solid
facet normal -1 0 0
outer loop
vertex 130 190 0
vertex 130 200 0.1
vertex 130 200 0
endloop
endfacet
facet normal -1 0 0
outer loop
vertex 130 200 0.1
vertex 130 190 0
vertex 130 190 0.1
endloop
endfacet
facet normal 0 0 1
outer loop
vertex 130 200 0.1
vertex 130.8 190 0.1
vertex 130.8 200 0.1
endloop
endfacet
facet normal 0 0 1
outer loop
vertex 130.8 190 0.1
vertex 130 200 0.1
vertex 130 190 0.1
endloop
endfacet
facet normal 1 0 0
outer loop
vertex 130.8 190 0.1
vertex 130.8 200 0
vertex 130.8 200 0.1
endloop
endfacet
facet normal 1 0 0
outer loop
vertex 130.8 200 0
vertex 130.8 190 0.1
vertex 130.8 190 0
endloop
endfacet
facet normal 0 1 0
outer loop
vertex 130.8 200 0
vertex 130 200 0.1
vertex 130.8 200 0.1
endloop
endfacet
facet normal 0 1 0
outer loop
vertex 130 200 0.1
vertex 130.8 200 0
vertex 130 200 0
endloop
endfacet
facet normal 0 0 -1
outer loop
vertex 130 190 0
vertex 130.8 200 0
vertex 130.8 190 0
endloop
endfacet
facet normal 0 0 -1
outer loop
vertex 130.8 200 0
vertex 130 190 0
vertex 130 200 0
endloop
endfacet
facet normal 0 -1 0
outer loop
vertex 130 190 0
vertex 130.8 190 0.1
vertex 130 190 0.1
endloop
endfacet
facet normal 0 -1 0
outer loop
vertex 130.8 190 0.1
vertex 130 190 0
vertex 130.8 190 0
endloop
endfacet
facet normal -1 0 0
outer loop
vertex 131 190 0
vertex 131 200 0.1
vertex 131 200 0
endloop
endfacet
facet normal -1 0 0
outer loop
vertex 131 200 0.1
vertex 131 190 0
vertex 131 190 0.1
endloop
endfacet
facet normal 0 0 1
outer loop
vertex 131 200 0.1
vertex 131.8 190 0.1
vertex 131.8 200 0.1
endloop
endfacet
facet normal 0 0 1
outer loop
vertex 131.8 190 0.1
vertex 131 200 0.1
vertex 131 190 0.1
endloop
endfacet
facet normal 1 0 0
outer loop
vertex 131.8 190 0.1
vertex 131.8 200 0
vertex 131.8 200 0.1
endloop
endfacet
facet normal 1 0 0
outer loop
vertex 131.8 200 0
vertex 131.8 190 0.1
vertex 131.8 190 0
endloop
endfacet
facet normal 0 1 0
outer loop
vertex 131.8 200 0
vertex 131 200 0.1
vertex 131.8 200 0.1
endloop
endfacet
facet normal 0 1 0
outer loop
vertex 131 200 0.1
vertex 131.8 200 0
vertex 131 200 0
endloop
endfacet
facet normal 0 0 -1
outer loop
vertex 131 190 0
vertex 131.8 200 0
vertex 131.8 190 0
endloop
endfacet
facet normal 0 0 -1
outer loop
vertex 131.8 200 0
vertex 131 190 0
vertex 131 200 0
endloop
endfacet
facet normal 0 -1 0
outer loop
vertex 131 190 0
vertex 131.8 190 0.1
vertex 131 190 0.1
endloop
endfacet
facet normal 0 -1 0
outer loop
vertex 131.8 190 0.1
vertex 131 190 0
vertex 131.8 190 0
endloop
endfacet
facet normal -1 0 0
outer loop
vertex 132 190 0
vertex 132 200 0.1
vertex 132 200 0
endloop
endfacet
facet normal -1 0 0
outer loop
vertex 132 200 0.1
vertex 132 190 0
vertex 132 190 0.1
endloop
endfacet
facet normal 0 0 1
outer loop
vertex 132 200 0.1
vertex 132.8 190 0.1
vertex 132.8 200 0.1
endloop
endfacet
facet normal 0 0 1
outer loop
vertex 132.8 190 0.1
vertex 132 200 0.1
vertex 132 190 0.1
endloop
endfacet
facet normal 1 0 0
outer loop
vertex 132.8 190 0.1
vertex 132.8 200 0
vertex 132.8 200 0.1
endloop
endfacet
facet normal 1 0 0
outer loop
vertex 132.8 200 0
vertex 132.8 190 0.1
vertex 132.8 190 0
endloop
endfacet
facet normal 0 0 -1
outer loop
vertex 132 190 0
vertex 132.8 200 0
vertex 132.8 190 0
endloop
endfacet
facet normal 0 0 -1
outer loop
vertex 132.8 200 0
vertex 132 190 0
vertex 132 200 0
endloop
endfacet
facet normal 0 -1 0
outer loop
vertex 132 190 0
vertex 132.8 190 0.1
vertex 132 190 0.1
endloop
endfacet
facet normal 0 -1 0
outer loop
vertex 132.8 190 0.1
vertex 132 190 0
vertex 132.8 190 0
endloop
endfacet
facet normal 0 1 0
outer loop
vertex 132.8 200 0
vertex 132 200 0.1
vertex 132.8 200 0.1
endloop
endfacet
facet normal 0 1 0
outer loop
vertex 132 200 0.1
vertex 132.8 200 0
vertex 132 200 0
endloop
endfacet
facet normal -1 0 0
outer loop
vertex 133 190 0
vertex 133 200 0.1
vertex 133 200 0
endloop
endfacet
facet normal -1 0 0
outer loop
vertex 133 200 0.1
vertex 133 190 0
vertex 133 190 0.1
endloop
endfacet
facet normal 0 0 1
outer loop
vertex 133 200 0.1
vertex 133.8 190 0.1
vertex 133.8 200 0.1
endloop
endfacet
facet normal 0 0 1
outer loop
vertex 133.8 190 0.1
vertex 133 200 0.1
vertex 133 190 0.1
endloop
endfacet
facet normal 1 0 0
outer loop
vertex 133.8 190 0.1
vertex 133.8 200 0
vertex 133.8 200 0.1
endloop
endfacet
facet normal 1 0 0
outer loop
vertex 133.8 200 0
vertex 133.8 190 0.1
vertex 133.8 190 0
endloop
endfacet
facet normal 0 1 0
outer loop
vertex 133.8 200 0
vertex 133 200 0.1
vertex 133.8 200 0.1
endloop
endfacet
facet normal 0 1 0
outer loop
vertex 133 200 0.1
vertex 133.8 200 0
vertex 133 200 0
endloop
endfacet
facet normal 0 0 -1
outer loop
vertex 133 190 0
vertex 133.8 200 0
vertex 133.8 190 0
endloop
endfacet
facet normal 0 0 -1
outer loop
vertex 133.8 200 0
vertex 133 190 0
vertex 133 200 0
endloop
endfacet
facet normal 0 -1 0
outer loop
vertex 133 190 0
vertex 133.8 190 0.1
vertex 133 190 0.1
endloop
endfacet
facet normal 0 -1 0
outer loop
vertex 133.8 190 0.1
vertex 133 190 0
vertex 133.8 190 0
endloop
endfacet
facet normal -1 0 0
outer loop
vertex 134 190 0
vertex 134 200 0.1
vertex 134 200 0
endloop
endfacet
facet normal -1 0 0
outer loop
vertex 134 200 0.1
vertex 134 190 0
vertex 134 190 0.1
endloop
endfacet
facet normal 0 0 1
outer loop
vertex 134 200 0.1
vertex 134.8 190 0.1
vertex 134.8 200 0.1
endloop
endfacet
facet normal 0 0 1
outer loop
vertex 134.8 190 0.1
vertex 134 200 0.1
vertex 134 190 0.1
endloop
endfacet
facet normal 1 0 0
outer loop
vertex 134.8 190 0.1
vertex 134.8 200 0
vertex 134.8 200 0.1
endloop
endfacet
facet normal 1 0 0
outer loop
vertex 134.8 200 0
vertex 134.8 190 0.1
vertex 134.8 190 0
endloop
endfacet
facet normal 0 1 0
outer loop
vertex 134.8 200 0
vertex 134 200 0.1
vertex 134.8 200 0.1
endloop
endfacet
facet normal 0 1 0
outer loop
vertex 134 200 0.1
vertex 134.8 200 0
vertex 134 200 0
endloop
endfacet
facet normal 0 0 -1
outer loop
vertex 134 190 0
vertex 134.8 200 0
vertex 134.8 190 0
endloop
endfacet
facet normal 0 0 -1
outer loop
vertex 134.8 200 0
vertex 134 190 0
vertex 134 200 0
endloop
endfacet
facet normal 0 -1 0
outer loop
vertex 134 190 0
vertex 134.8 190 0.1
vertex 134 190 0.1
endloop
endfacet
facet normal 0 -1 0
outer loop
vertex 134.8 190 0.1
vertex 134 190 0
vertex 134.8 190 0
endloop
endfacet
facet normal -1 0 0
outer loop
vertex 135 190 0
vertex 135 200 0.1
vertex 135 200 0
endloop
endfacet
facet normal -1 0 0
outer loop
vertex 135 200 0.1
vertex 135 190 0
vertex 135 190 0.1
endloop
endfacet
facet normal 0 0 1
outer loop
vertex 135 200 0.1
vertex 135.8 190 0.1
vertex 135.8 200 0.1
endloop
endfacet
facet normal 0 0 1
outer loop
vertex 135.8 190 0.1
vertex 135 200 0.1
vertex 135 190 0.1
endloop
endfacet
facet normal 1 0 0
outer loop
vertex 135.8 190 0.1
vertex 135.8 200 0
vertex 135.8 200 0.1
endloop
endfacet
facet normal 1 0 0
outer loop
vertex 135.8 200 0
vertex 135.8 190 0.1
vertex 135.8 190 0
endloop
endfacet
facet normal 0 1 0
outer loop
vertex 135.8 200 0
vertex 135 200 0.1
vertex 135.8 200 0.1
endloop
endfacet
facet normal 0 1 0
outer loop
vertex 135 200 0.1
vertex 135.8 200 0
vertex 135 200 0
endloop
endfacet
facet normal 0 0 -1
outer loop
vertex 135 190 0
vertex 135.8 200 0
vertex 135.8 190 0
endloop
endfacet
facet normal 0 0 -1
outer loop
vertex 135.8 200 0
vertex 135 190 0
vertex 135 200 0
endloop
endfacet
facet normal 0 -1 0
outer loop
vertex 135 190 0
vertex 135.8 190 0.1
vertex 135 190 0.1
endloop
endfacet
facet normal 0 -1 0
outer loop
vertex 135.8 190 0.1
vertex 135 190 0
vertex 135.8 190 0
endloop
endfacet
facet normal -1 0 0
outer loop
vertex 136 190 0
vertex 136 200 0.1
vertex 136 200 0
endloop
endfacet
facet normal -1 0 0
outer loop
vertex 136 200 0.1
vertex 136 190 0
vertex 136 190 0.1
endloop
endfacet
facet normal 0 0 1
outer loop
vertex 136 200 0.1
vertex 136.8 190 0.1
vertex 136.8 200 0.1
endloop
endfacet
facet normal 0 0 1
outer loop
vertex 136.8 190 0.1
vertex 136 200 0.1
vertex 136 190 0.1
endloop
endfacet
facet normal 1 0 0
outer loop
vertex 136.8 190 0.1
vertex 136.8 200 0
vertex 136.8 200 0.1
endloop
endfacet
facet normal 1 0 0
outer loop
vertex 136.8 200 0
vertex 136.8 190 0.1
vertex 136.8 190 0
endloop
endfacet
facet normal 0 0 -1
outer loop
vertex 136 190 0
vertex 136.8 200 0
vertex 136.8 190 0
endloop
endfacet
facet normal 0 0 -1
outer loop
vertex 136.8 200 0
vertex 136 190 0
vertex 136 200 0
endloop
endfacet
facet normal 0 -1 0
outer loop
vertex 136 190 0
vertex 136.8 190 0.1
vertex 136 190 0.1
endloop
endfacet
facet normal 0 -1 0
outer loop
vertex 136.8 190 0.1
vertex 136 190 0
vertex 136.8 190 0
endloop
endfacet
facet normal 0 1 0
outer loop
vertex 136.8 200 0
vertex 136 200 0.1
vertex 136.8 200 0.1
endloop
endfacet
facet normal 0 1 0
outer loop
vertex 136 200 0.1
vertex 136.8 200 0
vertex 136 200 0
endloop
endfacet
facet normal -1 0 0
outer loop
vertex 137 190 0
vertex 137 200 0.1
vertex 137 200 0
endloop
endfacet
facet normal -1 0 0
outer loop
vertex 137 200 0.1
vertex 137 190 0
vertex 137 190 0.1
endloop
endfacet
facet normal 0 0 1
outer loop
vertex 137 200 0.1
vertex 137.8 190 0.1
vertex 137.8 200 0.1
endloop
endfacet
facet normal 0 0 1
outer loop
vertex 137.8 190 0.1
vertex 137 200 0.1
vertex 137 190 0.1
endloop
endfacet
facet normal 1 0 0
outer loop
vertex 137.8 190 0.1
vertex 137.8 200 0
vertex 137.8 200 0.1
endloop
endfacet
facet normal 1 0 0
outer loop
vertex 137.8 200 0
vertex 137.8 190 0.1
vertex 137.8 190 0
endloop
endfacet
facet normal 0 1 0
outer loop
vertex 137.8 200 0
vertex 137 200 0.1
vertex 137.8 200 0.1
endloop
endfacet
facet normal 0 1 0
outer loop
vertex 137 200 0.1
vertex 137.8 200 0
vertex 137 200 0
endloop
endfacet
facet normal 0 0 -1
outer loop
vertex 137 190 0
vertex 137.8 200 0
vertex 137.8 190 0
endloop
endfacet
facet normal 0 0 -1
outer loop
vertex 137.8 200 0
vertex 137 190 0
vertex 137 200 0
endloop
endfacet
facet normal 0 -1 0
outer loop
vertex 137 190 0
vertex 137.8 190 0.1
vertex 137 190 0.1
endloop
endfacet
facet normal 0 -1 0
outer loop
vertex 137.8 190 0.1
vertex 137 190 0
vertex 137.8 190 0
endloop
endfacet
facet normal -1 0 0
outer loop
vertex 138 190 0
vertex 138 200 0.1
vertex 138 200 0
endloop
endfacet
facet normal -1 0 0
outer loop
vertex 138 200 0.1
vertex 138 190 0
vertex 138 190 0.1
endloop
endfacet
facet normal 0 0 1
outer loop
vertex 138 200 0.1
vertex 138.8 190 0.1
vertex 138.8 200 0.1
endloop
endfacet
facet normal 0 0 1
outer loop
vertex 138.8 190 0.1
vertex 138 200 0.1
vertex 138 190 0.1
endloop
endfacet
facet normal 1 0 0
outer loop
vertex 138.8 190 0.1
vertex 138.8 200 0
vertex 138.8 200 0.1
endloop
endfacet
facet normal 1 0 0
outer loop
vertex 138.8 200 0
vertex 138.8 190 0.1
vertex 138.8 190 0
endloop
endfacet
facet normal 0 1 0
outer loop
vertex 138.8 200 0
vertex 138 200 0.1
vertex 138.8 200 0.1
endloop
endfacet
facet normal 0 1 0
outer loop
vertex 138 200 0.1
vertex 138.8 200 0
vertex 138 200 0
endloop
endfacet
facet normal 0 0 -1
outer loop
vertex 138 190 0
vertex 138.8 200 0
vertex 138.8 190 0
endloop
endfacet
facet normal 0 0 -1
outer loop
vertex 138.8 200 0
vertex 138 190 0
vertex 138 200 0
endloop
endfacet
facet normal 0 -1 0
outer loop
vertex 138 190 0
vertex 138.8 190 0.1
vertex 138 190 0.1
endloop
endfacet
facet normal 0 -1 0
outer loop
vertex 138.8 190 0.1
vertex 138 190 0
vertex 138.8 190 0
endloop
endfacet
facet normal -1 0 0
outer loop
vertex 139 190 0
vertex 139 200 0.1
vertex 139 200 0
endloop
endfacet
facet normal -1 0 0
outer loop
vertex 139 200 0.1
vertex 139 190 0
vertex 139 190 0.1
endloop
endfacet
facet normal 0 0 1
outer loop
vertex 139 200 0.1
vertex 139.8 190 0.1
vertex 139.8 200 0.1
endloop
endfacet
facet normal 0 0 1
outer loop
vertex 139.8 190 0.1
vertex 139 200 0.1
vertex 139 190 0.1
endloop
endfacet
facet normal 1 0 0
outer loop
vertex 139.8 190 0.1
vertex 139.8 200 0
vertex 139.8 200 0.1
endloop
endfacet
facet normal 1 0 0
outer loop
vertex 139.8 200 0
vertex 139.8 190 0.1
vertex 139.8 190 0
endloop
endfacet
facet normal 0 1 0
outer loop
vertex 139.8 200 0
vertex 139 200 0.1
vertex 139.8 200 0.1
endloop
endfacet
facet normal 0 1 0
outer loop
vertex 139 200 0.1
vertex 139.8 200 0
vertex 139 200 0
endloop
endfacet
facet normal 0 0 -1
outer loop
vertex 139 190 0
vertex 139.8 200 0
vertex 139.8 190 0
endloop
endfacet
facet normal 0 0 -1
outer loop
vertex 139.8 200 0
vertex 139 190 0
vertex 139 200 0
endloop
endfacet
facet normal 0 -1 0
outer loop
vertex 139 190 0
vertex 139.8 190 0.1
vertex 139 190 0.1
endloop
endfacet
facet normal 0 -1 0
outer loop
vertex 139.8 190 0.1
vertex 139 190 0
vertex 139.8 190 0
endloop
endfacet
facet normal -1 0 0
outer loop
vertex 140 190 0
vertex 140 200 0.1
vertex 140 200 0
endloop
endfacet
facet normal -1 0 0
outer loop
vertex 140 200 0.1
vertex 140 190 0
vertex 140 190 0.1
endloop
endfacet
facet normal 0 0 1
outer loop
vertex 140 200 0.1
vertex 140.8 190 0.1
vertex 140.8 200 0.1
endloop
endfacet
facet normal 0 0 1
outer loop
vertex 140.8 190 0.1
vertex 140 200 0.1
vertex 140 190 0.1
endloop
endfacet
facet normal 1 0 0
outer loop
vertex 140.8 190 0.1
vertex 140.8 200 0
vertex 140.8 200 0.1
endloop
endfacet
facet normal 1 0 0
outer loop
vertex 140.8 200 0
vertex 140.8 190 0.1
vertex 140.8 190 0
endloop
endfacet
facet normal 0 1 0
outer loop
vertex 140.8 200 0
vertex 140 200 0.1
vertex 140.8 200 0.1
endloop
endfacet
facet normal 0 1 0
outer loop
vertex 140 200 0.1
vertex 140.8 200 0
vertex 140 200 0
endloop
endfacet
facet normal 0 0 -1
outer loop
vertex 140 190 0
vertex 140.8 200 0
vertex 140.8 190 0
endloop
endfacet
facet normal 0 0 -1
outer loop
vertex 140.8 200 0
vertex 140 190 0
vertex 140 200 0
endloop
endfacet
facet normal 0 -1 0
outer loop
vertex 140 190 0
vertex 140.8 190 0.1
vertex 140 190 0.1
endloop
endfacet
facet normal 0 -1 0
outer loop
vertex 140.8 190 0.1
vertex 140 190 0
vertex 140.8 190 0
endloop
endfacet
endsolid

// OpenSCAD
translate([10+120,10+180,0])
        for (i = [0 : 10]){
            translate([i,0,0])
                cube(size = [0.8,10,0.1]);
    }
